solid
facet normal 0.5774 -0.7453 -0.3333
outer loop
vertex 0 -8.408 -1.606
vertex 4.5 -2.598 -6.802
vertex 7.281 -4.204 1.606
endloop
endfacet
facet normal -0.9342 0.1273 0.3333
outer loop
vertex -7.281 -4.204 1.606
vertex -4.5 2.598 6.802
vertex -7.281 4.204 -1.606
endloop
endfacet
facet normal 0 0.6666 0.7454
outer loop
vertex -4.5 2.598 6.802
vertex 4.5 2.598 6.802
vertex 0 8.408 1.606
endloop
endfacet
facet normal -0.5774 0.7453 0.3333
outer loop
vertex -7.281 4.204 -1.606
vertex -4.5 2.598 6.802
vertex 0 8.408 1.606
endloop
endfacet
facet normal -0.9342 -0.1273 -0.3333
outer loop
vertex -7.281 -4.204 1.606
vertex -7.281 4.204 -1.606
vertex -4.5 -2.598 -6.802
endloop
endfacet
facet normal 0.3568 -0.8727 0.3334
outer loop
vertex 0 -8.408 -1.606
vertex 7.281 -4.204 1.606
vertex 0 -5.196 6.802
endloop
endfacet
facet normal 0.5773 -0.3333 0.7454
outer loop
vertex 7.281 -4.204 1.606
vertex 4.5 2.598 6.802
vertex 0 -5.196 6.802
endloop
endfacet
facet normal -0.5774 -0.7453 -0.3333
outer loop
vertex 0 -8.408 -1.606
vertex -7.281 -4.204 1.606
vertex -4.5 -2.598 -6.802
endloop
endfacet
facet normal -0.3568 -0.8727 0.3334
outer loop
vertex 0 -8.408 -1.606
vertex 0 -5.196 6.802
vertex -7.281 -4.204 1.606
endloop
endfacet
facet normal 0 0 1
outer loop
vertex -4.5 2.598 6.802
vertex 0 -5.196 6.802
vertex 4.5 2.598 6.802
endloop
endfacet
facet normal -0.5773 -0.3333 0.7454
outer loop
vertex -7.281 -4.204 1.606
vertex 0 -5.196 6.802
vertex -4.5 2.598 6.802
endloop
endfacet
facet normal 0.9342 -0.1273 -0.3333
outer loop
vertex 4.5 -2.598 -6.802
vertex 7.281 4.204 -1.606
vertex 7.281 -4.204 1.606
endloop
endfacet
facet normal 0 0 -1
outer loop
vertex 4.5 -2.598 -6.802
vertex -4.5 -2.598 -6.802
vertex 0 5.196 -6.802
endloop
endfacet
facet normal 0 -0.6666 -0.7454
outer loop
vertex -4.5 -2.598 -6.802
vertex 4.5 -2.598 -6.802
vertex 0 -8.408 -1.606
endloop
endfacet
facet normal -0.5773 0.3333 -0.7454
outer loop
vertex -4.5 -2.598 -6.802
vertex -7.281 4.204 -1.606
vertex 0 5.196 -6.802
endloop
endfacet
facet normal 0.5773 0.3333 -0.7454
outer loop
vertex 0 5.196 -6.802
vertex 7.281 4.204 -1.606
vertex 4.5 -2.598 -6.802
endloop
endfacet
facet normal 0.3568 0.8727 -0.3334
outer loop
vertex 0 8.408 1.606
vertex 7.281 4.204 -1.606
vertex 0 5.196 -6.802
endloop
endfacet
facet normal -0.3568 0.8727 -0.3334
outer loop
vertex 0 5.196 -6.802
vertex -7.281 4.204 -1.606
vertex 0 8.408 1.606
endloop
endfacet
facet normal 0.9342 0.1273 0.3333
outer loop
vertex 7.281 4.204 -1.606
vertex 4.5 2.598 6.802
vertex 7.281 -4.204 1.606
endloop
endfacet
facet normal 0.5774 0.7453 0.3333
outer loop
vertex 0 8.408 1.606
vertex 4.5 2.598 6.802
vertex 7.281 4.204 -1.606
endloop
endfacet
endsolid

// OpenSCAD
phi = (1 + sqrt(5))/2;        // golden ratio
e = 16 + 2.0;                 // Edge length of a spike + tolerance for glueing
s = phi^2 * e / 2 / sqrt(3);  // inscribed sphere in icosahedron

// create an icosahedron by intersecting 3 orthogonal golden-ratio rectangles
module icosahedron(edge_length) {
   st=0.0001;  // microscopic sheet thickness
   hull() {
       cube([edge_length*phi, edge_length, st], true);
       rotate([90,90,0]) cube([edge_length*phi, edge_length, st], true);
       rotate([90,0,90]) cube([edge_length*phi, edge_length, st], true);
   }
}

//The edge length L is related to the inner diameter D (distance between opposite faces)
L = s * sqrt(3) / phi^2;

rotate([acos(-sqrt(5)/3)/2 - 90, 0, 0])
icosahedron(L);
